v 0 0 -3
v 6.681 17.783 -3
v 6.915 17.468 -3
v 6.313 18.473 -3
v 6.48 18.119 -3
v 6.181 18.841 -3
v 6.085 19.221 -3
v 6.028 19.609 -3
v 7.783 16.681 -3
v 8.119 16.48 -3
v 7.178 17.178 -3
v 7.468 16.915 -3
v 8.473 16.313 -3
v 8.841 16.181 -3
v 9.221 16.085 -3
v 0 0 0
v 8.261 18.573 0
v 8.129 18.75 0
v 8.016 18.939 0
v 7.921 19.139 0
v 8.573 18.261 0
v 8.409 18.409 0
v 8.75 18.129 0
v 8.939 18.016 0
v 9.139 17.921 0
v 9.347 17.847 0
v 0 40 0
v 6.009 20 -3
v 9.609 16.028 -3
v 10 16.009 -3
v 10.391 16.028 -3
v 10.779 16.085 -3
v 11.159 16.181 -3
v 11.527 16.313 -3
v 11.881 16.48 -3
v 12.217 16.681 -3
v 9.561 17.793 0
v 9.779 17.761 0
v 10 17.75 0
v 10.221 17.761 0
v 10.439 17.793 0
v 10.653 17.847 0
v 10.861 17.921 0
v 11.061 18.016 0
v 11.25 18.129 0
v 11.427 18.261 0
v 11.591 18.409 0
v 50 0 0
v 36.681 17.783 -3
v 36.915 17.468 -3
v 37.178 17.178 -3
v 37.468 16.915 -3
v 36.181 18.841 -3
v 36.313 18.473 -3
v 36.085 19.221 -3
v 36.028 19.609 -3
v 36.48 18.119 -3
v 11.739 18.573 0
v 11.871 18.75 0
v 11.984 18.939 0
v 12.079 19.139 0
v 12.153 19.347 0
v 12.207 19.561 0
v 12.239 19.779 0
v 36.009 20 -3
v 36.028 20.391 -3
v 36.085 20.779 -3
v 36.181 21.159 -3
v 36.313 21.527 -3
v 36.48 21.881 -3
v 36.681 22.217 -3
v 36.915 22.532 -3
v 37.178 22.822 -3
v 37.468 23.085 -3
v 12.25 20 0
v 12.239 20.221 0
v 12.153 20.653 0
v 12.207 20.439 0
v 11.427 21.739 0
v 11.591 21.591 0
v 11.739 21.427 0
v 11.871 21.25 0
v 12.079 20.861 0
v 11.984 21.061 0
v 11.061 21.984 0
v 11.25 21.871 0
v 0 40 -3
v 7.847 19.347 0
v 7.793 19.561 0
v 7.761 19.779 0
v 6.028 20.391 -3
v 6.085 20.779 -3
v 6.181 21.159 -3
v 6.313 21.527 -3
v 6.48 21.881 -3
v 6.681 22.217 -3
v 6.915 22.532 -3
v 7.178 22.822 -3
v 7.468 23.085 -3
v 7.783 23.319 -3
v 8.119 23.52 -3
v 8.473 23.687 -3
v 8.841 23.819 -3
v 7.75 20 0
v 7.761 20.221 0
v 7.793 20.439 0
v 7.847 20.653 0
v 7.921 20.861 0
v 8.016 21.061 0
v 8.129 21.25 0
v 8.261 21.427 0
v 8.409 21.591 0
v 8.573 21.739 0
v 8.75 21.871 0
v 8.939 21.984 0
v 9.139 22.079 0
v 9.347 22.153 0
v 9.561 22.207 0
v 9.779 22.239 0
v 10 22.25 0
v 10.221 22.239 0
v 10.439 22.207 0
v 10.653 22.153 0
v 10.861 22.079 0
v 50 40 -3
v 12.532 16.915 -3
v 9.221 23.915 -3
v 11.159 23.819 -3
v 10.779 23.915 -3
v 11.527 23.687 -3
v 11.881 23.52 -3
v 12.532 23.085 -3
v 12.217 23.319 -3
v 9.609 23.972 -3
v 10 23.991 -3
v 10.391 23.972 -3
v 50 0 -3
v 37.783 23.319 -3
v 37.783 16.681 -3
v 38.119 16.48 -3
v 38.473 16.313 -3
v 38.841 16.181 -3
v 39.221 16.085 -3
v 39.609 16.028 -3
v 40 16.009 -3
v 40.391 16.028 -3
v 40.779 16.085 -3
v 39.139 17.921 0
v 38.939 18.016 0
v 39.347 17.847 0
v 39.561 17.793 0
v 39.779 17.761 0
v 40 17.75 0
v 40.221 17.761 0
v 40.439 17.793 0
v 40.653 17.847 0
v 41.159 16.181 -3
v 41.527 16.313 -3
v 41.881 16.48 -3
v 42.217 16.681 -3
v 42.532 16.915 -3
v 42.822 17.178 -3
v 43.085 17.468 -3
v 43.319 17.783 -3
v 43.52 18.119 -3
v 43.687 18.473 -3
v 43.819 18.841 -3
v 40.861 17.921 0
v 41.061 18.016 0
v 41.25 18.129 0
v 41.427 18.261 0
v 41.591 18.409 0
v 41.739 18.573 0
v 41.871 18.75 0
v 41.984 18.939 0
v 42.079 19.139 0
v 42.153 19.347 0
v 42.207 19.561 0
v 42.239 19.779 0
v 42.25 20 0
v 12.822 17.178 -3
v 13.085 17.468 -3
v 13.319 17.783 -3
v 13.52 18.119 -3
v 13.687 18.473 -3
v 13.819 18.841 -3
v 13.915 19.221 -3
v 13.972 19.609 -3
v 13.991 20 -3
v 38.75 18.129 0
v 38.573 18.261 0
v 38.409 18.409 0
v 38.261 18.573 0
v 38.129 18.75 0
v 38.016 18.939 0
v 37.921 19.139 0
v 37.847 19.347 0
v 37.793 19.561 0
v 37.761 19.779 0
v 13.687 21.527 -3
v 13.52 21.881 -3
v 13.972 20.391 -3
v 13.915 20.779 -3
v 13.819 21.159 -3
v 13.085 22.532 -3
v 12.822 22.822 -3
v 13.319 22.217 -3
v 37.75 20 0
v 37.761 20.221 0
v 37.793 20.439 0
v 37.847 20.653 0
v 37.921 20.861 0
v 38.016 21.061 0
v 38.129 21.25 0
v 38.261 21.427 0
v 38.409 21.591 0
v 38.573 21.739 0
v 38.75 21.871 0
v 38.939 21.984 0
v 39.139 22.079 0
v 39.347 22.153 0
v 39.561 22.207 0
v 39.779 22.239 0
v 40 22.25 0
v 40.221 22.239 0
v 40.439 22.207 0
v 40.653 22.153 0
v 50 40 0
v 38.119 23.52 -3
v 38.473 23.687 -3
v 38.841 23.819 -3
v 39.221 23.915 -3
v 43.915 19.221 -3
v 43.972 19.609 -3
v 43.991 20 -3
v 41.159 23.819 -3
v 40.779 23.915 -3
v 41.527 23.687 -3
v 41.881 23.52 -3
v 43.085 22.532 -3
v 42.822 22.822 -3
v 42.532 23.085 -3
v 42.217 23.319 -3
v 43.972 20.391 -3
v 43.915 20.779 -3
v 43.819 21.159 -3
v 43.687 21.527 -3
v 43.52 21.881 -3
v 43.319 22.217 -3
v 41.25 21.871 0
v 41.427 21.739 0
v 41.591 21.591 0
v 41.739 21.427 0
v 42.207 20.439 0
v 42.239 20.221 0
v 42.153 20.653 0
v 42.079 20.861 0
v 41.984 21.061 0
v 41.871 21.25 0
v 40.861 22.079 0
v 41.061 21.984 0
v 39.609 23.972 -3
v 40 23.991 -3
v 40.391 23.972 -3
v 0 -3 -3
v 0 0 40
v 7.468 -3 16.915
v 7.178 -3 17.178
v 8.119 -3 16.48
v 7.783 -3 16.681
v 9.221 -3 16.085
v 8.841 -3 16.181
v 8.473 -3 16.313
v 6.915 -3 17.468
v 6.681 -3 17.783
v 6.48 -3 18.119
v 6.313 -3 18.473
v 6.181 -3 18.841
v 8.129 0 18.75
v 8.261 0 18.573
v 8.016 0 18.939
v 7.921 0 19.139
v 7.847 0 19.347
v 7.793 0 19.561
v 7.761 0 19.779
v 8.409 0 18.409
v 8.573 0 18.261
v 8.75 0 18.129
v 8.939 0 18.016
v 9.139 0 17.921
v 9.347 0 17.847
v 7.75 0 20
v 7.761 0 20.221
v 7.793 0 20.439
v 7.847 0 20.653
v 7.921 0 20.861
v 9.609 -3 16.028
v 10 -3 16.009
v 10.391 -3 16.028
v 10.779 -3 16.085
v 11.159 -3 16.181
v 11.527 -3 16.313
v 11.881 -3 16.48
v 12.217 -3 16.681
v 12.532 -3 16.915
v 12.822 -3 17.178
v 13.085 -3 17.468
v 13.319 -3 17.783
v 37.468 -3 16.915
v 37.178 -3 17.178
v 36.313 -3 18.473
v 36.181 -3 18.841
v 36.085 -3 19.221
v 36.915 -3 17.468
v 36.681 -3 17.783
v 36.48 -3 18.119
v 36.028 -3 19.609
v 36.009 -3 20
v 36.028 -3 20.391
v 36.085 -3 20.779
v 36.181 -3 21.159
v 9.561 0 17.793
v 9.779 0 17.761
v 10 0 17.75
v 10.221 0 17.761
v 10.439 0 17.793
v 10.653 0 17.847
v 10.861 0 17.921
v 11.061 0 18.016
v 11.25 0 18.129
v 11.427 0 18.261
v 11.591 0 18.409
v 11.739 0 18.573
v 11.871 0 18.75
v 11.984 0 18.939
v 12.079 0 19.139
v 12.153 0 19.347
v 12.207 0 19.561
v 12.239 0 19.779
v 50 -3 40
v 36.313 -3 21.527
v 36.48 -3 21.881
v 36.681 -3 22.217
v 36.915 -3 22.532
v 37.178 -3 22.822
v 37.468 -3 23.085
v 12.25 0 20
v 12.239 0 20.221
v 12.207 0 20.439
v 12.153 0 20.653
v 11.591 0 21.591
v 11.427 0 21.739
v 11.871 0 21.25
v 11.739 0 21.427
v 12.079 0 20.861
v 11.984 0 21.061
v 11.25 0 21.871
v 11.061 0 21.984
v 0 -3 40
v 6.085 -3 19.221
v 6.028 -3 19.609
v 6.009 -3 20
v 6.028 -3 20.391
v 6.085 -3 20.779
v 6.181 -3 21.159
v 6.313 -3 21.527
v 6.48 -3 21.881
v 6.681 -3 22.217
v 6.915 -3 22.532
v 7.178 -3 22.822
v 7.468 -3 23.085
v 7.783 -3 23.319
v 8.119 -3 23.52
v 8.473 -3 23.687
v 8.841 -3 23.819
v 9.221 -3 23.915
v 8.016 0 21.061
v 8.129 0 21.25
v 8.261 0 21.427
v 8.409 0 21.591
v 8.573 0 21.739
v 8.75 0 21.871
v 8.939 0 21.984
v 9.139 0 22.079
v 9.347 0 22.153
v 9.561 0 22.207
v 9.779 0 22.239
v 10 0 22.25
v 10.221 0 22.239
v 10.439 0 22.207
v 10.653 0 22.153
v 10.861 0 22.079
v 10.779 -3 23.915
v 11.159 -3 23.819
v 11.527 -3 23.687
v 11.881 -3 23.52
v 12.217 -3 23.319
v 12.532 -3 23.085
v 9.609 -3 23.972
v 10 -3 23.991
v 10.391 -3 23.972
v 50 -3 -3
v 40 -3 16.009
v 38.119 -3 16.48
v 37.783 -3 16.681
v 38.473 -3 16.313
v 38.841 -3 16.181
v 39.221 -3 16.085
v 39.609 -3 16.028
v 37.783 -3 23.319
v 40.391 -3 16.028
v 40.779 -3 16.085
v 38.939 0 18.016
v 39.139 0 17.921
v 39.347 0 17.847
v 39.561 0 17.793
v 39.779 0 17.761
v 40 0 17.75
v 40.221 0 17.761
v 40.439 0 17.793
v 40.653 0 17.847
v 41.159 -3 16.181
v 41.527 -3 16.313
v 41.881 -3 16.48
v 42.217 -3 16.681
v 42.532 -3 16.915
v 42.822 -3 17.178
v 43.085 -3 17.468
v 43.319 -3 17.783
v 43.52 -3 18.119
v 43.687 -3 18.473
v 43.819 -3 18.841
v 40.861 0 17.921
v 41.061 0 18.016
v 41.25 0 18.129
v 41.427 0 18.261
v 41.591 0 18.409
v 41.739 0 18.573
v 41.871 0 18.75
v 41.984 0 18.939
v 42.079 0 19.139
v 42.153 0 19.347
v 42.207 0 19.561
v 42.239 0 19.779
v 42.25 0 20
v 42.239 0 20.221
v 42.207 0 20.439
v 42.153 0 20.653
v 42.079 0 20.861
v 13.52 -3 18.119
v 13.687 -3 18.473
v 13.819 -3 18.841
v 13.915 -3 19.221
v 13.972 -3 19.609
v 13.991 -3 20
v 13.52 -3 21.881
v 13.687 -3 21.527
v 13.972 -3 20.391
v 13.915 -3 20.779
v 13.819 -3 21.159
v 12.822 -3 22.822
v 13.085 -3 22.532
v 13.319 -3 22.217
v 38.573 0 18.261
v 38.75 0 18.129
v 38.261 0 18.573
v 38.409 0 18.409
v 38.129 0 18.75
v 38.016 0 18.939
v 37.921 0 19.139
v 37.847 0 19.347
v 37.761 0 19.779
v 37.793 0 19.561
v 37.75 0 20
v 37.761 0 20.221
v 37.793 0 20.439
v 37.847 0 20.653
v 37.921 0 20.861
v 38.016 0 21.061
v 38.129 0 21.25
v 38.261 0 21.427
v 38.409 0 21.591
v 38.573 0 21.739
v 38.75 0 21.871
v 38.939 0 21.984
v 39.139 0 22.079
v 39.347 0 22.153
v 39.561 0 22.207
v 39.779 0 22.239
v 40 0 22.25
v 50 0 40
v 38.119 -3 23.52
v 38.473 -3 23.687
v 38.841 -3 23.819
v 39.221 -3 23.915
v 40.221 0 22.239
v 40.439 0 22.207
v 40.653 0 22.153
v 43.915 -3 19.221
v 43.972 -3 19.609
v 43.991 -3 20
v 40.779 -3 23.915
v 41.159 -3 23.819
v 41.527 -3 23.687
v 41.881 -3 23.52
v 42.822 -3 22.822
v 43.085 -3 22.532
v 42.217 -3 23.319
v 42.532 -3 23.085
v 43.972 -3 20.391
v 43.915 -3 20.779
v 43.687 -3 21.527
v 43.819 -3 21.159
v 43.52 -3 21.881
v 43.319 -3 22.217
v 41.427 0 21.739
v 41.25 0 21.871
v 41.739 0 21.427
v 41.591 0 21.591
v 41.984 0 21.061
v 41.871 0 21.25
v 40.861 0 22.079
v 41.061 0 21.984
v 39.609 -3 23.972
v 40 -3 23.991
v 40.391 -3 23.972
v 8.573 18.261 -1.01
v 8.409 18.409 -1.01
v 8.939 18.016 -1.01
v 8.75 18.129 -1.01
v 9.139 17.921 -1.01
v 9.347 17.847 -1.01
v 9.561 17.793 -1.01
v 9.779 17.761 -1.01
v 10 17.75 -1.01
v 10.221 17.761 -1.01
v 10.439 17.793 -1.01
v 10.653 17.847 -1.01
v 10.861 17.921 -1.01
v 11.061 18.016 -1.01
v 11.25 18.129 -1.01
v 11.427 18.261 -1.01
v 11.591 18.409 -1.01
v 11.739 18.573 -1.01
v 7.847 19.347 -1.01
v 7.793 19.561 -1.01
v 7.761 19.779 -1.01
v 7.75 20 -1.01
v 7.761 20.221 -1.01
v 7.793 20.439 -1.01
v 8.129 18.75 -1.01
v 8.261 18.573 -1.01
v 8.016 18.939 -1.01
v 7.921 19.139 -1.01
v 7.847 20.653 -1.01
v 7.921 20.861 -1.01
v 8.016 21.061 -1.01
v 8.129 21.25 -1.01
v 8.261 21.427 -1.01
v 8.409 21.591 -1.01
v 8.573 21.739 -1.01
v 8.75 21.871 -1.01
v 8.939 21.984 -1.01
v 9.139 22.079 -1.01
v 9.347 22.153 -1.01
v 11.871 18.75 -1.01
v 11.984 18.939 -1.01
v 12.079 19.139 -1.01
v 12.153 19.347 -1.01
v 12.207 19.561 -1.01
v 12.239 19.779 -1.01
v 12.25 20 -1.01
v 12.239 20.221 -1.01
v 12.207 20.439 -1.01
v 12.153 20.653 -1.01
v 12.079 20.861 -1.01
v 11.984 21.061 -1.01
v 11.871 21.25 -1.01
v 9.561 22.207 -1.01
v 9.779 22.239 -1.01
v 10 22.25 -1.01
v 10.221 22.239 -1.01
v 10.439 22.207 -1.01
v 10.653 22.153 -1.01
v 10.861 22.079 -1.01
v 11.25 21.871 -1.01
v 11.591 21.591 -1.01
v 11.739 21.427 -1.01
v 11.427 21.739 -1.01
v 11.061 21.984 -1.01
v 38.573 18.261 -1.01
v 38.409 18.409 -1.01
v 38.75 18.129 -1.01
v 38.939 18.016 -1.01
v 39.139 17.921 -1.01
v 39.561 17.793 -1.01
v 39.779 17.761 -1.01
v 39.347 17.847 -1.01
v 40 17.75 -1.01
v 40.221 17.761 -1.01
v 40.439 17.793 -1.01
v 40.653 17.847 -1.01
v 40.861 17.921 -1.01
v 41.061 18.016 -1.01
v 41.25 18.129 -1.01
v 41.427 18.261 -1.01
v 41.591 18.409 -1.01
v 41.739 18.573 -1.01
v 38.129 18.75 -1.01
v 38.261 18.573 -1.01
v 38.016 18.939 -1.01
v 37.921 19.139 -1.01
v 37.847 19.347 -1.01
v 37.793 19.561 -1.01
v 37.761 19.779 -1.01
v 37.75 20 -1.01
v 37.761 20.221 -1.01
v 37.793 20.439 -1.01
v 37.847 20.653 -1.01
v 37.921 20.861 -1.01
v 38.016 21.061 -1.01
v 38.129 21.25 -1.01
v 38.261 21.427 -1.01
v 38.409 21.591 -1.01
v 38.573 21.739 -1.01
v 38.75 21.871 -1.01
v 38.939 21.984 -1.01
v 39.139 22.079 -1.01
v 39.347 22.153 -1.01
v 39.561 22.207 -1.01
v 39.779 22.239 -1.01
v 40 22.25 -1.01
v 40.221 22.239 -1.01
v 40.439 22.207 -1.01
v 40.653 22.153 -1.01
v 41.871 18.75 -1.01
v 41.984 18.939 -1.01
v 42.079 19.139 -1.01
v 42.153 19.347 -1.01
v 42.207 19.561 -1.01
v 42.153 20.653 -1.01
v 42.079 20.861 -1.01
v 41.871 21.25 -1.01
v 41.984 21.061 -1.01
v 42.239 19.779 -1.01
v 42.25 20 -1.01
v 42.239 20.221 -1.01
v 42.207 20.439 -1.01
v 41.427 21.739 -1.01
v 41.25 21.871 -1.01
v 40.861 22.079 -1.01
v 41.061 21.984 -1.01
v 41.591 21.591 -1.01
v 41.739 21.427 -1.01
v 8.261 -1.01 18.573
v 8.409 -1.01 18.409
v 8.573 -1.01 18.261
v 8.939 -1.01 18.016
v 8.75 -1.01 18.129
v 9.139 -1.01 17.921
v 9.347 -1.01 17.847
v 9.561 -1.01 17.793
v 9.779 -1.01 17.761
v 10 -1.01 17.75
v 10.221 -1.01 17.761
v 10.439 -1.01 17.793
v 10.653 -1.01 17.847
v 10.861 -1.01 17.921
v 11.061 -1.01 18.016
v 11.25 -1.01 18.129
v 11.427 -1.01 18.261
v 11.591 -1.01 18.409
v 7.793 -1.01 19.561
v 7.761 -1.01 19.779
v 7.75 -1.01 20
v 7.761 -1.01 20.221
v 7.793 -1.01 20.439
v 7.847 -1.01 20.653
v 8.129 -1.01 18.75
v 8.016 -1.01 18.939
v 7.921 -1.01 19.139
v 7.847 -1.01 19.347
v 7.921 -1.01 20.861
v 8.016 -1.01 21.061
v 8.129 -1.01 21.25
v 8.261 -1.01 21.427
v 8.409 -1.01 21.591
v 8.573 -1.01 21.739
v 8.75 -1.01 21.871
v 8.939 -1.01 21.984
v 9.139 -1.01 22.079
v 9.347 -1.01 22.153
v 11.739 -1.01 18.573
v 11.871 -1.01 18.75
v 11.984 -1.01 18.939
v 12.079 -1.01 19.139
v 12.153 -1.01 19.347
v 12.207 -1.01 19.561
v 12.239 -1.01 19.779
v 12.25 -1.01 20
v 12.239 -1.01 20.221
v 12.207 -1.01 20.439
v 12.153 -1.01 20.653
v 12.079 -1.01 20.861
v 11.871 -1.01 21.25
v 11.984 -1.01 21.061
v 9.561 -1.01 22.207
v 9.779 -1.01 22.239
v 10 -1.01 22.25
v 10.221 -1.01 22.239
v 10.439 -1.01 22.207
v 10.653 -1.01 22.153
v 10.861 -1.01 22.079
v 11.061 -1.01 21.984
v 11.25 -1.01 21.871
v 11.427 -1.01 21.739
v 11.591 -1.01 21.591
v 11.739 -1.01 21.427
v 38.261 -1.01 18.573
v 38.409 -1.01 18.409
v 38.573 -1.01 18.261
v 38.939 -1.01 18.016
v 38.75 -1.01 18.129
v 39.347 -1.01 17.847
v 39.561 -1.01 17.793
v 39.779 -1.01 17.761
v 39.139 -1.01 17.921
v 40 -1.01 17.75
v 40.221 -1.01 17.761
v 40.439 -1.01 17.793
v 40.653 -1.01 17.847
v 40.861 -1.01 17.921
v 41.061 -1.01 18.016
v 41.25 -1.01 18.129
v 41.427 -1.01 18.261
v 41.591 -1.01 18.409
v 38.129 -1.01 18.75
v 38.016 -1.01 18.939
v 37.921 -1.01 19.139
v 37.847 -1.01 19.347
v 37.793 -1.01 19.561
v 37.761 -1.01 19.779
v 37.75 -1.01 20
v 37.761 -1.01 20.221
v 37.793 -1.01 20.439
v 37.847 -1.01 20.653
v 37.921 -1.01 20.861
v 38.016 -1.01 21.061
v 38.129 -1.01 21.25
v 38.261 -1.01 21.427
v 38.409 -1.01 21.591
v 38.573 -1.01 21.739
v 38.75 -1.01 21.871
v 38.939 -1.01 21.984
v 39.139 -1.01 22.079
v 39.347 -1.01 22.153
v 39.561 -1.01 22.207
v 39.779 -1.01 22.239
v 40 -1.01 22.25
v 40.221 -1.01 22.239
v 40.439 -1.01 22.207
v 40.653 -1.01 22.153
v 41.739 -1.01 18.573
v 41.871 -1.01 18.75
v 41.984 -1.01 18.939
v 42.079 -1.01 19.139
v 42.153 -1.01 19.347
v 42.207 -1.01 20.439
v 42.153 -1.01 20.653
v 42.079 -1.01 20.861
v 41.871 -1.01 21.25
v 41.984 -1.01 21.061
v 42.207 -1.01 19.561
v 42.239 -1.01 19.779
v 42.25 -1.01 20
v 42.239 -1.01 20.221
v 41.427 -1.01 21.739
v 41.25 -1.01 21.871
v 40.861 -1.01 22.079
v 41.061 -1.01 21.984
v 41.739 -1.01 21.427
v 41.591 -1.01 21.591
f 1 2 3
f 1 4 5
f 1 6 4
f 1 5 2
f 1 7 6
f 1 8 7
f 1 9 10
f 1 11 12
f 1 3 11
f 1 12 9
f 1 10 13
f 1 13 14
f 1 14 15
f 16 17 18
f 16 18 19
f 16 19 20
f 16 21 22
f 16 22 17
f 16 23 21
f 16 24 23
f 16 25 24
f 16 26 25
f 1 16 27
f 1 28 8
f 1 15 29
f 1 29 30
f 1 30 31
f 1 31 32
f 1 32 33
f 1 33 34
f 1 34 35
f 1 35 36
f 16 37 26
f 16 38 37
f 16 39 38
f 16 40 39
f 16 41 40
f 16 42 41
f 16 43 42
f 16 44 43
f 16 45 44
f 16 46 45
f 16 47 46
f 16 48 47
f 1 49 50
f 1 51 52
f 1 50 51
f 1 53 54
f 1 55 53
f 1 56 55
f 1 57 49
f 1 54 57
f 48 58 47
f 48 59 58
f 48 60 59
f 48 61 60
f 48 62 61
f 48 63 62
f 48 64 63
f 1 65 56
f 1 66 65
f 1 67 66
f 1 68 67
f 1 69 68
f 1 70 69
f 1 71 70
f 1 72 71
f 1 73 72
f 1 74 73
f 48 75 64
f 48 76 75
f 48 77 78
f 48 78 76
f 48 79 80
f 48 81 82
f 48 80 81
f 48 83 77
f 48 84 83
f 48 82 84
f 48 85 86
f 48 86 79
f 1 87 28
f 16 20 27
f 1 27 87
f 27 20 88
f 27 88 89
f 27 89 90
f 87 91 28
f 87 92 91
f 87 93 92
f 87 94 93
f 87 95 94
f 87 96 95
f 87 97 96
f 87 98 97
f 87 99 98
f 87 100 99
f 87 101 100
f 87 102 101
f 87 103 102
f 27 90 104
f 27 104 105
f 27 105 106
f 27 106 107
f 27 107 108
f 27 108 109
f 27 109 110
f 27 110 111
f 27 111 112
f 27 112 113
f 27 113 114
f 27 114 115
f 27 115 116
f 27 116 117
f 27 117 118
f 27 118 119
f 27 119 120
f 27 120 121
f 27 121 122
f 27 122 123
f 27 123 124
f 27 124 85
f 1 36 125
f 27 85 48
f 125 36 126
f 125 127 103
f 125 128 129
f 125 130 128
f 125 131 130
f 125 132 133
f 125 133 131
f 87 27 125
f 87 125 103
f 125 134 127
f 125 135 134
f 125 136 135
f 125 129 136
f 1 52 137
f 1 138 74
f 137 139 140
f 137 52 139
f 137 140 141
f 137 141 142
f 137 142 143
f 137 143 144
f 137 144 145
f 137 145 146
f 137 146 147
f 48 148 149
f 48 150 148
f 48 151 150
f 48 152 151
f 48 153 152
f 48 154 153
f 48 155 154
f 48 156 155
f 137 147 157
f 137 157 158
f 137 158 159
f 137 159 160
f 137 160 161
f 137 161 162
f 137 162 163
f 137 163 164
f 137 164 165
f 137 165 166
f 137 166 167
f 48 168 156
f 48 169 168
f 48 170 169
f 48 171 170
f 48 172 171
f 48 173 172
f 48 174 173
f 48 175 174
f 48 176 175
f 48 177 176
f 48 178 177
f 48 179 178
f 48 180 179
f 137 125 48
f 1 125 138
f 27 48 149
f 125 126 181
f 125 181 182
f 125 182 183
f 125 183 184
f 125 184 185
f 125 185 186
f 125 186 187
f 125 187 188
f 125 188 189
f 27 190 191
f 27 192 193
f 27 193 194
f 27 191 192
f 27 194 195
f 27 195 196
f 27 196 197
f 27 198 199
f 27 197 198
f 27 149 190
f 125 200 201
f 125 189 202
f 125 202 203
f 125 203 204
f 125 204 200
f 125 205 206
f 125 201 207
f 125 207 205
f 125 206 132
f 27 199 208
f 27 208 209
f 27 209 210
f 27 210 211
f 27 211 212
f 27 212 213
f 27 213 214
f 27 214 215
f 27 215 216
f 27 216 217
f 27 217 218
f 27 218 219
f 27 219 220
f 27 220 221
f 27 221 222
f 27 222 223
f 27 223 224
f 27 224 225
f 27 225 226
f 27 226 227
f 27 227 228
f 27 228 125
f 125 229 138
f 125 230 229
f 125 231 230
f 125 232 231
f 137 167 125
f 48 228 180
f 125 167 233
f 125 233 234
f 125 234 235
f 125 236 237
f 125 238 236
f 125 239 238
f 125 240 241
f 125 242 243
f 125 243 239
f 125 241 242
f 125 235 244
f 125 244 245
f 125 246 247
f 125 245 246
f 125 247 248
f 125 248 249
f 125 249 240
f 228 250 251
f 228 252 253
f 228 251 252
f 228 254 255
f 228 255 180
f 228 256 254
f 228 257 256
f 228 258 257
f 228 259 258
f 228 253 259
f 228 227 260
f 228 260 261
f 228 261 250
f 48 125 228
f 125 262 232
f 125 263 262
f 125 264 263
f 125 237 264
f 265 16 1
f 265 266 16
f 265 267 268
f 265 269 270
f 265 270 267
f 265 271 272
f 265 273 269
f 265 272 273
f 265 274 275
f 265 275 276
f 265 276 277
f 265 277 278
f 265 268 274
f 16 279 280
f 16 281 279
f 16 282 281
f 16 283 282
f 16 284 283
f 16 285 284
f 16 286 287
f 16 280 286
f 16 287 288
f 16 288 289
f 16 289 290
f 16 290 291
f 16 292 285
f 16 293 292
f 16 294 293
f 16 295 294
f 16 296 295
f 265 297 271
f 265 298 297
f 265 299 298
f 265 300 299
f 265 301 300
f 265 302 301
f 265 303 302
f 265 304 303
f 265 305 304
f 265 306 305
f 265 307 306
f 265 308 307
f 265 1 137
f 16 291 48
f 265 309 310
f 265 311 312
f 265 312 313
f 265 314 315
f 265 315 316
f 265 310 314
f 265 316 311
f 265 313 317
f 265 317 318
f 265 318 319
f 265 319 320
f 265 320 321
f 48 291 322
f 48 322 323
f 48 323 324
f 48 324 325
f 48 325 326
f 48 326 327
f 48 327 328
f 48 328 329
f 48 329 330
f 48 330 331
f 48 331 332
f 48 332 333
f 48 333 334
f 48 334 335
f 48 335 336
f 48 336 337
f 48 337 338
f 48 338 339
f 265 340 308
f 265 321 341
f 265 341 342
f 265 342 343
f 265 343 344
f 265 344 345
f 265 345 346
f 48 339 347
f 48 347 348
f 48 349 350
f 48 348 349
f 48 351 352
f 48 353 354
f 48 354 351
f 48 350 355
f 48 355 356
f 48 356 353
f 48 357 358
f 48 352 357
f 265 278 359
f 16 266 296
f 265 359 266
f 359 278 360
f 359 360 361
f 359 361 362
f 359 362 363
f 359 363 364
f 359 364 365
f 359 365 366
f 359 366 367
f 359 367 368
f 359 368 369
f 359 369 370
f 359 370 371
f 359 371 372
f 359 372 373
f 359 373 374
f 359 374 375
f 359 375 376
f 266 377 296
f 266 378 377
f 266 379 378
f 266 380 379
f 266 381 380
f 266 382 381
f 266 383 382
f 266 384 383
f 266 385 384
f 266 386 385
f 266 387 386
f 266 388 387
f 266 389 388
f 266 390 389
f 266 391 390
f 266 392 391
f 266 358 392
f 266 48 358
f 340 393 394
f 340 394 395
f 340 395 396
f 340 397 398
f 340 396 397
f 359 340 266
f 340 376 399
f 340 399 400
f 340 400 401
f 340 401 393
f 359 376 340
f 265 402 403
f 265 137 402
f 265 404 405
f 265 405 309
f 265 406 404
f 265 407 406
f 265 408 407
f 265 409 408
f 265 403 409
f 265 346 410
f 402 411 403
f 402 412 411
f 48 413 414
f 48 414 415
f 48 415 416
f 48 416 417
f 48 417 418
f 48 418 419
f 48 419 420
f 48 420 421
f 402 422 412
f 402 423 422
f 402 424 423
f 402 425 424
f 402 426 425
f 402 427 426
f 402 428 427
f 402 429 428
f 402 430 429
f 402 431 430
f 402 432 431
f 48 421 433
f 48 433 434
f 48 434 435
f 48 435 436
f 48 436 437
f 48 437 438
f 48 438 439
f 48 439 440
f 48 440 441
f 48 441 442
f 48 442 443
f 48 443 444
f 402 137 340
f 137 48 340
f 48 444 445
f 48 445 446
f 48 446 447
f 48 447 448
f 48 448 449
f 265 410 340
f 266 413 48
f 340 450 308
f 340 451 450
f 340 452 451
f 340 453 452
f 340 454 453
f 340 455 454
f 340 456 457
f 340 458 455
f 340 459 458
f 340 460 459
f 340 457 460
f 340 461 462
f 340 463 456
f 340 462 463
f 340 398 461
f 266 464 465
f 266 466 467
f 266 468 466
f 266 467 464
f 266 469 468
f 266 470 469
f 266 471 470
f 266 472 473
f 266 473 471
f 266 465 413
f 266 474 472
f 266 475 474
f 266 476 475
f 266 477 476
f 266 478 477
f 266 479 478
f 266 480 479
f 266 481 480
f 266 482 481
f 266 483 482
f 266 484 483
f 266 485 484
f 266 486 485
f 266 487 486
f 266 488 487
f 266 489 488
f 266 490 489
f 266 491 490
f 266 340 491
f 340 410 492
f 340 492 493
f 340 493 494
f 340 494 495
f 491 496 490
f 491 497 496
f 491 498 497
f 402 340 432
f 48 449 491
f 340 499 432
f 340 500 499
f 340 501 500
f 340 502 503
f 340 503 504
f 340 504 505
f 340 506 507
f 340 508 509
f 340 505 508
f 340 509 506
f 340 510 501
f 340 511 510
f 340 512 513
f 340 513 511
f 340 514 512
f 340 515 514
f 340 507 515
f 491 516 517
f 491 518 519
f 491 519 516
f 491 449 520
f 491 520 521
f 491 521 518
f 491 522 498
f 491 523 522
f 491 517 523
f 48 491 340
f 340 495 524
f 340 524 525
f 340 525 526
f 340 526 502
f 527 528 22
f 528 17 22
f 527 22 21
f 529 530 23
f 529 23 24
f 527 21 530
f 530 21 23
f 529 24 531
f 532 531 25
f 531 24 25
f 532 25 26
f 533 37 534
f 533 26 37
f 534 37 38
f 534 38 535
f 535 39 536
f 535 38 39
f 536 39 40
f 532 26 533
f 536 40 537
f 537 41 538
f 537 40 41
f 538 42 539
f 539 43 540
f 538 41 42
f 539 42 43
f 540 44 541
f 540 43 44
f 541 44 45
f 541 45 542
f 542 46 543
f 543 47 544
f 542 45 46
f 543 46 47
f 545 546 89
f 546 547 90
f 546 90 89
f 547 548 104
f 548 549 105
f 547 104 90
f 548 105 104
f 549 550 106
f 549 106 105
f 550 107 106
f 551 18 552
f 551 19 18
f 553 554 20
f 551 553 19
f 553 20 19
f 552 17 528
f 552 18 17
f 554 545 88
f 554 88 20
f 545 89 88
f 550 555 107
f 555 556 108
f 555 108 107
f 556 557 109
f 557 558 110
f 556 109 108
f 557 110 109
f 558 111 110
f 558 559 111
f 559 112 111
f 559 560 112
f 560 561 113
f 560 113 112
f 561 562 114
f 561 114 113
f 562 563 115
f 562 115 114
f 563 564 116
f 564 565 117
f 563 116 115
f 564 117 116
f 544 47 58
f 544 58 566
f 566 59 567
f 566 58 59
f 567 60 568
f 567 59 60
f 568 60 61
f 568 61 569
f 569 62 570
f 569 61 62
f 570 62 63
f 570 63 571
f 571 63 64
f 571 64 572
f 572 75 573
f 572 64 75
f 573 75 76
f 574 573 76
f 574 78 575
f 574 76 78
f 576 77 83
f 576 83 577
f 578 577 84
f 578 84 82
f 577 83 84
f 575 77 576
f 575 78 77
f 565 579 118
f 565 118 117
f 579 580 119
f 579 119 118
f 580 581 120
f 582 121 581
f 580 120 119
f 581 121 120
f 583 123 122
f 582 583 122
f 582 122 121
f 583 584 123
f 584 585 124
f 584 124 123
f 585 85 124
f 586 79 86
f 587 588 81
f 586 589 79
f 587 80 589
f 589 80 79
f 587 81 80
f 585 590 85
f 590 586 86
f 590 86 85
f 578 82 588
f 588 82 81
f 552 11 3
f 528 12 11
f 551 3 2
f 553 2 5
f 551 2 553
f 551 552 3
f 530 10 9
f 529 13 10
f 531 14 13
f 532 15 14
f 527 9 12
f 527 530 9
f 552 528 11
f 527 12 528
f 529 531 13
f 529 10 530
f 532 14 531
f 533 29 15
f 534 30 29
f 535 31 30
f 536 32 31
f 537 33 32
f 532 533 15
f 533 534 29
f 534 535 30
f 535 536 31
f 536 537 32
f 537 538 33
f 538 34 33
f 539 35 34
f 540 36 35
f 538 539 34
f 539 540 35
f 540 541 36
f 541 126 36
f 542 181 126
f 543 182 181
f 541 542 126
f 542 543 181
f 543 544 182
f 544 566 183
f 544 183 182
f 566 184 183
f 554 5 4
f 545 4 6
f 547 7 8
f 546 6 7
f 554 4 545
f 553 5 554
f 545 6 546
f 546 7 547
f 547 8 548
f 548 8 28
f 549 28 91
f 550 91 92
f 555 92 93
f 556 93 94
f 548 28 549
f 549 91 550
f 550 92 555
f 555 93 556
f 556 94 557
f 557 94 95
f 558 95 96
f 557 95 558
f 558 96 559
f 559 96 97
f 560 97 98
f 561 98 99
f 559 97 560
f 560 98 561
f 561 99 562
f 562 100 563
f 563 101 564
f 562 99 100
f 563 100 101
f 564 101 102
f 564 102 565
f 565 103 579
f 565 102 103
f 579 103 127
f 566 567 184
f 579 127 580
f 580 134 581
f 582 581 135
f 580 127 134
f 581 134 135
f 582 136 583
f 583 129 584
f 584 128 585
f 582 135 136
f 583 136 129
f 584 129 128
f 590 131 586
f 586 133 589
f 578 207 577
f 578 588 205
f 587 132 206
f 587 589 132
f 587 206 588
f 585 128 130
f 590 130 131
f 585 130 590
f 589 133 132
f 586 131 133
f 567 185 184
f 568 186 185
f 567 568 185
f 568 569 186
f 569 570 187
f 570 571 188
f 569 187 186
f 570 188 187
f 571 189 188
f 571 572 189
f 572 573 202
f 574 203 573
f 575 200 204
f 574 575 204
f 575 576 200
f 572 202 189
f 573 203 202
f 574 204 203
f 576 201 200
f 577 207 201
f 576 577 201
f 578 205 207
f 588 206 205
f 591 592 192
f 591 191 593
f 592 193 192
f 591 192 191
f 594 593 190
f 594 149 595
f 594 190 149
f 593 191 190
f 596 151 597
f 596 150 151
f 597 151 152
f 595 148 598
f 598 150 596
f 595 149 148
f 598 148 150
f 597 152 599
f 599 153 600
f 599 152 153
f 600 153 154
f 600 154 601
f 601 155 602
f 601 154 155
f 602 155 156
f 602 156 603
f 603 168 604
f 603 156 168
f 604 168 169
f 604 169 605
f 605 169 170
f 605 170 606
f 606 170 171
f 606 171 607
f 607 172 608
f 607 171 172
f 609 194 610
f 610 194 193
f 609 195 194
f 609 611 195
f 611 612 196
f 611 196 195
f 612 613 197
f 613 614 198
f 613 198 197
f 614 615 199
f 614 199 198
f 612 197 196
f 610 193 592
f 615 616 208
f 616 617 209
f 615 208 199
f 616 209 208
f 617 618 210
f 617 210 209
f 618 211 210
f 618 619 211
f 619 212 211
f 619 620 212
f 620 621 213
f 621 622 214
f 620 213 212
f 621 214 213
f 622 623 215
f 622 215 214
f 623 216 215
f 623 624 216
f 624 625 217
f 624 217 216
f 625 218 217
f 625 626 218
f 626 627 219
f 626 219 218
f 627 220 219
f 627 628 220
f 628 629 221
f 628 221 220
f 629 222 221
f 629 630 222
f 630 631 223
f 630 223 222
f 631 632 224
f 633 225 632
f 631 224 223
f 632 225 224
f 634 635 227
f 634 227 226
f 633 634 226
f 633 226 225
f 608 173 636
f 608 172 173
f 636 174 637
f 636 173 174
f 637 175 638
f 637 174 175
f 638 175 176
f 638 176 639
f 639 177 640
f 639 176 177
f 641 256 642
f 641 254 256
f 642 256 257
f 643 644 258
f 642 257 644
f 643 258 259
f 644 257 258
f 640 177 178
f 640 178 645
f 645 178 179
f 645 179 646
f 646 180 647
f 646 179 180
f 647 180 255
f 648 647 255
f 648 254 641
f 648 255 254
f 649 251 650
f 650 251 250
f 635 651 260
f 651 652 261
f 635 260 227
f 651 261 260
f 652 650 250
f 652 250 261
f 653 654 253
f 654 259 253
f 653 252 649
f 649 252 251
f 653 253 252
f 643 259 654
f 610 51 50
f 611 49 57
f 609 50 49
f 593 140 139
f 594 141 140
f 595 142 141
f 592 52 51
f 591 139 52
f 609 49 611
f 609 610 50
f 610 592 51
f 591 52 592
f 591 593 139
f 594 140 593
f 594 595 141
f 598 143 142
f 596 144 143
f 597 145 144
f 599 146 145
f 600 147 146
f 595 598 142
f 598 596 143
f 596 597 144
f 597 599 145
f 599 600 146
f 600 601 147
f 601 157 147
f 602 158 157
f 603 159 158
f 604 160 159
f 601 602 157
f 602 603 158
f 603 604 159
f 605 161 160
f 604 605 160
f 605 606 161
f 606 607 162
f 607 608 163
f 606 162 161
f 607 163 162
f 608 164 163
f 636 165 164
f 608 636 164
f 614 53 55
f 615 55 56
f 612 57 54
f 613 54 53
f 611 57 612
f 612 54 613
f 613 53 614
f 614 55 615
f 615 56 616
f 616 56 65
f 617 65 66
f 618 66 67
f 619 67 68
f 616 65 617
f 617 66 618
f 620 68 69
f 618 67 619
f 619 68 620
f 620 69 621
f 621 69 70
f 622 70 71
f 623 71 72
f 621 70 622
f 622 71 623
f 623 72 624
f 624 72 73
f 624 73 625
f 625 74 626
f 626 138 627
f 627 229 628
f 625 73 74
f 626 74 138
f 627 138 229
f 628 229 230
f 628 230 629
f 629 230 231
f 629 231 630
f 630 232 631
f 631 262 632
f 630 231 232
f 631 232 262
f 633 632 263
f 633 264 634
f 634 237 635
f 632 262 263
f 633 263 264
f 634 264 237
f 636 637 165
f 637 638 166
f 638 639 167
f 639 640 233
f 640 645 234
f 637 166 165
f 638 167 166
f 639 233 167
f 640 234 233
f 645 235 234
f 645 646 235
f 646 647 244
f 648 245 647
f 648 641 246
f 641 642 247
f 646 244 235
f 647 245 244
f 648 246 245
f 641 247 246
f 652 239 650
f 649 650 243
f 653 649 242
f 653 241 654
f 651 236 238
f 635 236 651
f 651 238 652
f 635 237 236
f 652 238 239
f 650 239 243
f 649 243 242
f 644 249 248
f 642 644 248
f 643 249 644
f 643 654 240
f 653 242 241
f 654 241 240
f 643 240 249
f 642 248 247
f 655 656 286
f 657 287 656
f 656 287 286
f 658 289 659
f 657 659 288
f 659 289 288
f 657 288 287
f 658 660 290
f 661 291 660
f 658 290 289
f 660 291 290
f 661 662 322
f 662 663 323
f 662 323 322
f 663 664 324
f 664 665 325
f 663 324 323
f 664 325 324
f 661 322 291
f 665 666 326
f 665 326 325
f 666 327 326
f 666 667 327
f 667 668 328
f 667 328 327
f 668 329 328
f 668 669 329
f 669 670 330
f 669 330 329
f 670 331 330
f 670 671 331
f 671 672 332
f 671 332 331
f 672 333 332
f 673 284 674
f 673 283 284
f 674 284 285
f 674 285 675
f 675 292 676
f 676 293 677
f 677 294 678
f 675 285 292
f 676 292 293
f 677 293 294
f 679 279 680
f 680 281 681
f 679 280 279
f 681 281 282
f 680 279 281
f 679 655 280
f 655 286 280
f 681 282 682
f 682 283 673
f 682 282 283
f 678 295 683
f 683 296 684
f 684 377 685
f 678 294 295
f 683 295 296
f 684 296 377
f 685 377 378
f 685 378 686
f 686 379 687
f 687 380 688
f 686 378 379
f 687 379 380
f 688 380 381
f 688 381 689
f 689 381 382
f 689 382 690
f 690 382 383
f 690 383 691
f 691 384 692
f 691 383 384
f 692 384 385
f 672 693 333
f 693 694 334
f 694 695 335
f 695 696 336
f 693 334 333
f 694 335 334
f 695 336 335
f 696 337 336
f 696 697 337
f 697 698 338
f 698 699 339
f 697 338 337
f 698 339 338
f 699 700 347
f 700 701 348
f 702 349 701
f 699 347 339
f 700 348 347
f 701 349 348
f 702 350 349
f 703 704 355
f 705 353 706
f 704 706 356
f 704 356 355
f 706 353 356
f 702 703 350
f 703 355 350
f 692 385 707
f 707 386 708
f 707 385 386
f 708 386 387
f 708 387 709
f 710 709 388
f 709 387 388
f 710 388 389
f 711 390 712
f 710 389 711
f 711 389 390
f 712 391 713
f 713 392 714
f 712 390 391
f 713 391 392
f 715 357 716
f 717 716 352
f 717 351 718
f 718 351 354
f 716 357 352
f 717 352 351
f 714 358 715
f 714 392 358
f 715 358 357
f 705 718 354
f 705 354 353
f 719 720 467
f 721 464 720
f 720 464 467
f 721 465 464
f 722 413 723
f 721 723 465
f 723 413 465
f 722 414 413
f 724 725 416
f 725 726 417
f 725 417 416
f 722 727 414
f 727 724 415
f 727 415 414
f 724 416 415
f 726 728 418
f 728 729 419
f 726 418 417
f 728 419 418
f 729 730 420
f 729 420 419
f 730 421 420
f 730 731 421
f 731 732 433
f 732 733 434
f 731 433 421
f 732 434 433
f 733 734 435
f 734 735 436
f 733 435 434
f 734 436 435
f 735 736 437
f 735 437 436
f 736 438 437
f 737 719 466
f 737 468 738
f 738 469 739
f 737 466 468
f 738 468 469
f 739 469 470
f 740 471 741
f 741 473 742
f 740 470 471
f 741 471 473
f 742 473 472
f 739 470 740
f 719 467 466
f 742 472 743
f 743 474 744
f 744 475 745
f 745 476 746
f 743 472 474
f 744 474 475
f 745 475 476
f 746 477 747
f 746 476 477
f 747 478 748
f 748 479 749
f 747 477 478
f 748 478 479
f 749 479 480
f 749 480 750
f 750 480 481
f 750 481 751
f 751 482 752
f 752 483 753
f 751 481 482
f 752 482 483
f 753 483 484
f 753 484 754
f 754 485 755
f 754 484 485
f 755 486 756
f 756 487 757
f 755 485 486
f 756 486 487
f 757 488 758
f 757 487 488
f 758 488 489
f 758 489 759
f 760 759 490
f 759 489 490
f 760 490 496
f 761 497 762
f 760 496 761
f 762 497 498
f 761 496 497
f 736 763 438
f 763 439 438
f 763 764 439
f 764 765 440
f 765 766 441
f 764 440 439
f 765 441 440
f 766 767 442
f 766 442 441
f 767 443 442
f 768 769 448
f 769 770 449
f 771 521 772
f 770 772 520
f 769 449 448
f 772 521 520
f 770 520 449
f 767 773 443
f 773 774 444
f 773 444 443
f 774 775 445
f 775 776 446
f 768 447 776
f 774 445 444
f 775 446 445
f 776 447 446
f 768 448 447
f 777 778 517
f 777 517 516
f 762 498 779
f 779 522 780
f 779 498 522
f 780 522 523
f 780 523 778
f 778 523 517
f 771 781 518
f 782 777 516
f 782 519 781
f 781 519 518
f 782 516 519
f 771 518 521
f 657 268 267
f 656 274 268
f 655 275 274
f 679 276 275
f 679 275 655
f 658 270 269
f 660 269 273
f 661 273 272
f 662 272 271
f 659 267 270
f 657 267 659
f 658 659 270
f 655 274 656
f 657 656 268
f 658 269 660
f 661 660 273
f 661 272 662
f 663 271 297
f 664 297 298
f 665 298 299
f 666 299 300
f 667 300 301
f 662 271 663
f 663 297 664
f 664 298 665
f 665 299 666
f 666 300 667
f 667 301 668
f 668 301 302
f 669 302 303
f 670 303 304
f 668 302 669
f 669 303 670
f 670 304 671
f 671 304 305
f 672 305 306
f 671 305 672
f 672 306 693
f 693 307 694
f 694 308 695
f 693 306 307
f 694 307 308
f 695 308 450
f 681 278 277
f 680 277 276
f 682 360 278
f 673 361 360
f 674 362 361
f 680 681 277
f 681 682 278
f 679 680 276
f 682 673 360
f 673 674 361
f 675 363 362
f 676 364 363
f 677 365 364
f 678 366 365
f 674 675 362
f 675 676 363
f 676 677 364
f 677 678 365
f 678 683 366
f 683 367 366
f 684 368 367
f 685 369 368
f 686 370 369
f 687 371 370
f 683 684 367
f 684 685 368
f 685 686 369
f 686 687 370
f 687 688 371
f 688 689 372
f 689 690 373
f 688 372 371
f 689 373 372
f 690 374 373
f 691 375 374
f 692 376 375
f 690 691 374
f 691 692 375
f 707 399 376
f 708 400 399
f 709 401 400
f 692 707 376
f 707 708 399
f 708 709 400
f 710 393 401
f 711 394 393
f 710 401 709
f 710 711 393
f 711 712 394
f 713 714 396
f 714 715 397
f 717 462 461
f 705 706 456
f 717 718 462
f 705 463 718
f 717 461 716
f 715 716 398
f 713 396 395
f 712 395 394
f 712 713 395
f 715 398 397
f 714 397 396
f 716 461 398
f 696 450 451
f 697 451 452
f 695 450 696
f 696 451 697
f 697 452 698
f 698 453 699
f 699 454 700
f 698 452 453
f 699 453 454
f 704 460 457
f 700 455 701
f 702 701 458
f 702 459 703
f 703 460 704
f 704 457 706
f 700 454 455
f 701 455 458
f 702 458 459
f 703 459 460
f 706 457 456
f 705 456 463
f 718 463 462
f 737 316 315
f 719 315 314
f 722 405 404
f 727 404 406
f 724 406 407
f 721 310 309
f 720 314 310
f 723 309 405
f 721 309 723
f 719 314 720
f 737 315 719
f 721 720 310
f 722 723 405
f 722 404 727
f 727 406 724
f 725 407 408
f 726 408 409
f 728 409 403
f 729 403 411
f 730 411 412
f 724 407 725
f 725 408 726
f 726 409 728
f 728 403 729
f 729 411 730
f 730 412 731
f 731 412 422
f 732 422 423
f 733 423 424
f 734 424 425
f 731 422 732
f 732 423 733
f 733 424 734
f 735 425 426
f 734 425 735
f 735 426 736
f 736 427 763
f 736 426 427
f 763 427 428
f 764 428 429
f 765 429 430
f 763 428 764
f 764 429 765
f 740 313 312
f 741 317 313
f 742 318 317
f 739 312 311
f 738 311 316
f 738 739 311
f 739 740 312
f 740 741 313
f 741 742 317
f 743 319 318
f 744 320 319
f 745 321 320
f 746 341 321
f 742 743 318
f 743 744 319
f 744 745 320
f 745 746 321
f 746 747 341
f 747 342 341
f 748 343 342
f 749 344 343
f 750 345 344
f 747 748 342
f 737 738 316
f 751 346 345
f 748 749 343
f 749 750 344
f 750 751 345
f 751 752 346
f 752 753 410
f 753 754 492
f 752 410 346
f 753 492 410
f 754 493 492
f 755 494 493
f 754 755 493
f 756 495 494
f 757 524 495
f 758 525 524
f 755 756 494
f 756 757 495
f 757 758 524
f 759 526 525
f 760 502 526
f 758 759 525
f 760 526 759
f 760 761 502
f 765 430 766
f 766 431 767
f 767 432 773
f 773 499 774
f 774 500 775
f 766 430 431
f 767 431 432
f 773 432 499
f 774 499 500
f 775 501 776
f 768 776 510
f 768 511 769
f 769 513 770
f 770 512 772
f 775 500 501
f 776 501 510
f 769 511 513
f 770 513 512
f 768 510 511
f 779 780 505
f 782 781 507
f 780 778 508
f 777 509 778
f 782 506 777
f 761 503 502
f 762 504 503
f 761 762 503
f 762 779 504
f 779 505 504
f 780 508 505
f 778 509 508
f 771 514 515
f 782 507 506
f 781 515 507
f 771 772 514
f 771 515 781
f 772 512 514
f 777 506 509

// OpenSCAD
$fn = 64;

width      = 50;
depth      = 40;
height     = 40;
t          = 3;

hole_d     = 4.5;
cs_d       = 8;
cs_depth   = 2;
edge_inset = 10;

difference() {
    union() {
        // 水平フランジ(下面が外側、z = -t ~ 0)
        translate([0, 0, -t])
            cube([width, depth, t]);
        // 垂直フランジ(背面が外側、y = -t ~ 0)
        translate([0, -t, -t])
            cube([width, t, height + t]);
    }

    // 水平面の穴(皿座面は下側=外側)
    for (x = [edge_inset, width - edge_inset]) {
        translate([x, depth / 2, 0]) {
            translate([0, 0, -t - 1])
                cylinder(d = hole_d, h = t + 2);
            translate([0, 0, -t - 0.01])
                cylinder(d1 = cs_d, d2 = hole_d, h = cs_depth);
        }
    }

    // 垂直面の穴(皿座面は背面側=外側)
    for (x = [edge_inset, width - edge_inset]) {
        translate([x, 0, height / 2]) {
            rotate([90, 0, 0]) {
                translate([0, 0, -1])
                    cylinder(d = hole_d, h = t + 2);
                translate([0, 0, t - cs_depth + 0.01])
                    cylinder(d1 = hole_d, d2 = cs_d, h = cs_depth);
            }
        }
    }
}
